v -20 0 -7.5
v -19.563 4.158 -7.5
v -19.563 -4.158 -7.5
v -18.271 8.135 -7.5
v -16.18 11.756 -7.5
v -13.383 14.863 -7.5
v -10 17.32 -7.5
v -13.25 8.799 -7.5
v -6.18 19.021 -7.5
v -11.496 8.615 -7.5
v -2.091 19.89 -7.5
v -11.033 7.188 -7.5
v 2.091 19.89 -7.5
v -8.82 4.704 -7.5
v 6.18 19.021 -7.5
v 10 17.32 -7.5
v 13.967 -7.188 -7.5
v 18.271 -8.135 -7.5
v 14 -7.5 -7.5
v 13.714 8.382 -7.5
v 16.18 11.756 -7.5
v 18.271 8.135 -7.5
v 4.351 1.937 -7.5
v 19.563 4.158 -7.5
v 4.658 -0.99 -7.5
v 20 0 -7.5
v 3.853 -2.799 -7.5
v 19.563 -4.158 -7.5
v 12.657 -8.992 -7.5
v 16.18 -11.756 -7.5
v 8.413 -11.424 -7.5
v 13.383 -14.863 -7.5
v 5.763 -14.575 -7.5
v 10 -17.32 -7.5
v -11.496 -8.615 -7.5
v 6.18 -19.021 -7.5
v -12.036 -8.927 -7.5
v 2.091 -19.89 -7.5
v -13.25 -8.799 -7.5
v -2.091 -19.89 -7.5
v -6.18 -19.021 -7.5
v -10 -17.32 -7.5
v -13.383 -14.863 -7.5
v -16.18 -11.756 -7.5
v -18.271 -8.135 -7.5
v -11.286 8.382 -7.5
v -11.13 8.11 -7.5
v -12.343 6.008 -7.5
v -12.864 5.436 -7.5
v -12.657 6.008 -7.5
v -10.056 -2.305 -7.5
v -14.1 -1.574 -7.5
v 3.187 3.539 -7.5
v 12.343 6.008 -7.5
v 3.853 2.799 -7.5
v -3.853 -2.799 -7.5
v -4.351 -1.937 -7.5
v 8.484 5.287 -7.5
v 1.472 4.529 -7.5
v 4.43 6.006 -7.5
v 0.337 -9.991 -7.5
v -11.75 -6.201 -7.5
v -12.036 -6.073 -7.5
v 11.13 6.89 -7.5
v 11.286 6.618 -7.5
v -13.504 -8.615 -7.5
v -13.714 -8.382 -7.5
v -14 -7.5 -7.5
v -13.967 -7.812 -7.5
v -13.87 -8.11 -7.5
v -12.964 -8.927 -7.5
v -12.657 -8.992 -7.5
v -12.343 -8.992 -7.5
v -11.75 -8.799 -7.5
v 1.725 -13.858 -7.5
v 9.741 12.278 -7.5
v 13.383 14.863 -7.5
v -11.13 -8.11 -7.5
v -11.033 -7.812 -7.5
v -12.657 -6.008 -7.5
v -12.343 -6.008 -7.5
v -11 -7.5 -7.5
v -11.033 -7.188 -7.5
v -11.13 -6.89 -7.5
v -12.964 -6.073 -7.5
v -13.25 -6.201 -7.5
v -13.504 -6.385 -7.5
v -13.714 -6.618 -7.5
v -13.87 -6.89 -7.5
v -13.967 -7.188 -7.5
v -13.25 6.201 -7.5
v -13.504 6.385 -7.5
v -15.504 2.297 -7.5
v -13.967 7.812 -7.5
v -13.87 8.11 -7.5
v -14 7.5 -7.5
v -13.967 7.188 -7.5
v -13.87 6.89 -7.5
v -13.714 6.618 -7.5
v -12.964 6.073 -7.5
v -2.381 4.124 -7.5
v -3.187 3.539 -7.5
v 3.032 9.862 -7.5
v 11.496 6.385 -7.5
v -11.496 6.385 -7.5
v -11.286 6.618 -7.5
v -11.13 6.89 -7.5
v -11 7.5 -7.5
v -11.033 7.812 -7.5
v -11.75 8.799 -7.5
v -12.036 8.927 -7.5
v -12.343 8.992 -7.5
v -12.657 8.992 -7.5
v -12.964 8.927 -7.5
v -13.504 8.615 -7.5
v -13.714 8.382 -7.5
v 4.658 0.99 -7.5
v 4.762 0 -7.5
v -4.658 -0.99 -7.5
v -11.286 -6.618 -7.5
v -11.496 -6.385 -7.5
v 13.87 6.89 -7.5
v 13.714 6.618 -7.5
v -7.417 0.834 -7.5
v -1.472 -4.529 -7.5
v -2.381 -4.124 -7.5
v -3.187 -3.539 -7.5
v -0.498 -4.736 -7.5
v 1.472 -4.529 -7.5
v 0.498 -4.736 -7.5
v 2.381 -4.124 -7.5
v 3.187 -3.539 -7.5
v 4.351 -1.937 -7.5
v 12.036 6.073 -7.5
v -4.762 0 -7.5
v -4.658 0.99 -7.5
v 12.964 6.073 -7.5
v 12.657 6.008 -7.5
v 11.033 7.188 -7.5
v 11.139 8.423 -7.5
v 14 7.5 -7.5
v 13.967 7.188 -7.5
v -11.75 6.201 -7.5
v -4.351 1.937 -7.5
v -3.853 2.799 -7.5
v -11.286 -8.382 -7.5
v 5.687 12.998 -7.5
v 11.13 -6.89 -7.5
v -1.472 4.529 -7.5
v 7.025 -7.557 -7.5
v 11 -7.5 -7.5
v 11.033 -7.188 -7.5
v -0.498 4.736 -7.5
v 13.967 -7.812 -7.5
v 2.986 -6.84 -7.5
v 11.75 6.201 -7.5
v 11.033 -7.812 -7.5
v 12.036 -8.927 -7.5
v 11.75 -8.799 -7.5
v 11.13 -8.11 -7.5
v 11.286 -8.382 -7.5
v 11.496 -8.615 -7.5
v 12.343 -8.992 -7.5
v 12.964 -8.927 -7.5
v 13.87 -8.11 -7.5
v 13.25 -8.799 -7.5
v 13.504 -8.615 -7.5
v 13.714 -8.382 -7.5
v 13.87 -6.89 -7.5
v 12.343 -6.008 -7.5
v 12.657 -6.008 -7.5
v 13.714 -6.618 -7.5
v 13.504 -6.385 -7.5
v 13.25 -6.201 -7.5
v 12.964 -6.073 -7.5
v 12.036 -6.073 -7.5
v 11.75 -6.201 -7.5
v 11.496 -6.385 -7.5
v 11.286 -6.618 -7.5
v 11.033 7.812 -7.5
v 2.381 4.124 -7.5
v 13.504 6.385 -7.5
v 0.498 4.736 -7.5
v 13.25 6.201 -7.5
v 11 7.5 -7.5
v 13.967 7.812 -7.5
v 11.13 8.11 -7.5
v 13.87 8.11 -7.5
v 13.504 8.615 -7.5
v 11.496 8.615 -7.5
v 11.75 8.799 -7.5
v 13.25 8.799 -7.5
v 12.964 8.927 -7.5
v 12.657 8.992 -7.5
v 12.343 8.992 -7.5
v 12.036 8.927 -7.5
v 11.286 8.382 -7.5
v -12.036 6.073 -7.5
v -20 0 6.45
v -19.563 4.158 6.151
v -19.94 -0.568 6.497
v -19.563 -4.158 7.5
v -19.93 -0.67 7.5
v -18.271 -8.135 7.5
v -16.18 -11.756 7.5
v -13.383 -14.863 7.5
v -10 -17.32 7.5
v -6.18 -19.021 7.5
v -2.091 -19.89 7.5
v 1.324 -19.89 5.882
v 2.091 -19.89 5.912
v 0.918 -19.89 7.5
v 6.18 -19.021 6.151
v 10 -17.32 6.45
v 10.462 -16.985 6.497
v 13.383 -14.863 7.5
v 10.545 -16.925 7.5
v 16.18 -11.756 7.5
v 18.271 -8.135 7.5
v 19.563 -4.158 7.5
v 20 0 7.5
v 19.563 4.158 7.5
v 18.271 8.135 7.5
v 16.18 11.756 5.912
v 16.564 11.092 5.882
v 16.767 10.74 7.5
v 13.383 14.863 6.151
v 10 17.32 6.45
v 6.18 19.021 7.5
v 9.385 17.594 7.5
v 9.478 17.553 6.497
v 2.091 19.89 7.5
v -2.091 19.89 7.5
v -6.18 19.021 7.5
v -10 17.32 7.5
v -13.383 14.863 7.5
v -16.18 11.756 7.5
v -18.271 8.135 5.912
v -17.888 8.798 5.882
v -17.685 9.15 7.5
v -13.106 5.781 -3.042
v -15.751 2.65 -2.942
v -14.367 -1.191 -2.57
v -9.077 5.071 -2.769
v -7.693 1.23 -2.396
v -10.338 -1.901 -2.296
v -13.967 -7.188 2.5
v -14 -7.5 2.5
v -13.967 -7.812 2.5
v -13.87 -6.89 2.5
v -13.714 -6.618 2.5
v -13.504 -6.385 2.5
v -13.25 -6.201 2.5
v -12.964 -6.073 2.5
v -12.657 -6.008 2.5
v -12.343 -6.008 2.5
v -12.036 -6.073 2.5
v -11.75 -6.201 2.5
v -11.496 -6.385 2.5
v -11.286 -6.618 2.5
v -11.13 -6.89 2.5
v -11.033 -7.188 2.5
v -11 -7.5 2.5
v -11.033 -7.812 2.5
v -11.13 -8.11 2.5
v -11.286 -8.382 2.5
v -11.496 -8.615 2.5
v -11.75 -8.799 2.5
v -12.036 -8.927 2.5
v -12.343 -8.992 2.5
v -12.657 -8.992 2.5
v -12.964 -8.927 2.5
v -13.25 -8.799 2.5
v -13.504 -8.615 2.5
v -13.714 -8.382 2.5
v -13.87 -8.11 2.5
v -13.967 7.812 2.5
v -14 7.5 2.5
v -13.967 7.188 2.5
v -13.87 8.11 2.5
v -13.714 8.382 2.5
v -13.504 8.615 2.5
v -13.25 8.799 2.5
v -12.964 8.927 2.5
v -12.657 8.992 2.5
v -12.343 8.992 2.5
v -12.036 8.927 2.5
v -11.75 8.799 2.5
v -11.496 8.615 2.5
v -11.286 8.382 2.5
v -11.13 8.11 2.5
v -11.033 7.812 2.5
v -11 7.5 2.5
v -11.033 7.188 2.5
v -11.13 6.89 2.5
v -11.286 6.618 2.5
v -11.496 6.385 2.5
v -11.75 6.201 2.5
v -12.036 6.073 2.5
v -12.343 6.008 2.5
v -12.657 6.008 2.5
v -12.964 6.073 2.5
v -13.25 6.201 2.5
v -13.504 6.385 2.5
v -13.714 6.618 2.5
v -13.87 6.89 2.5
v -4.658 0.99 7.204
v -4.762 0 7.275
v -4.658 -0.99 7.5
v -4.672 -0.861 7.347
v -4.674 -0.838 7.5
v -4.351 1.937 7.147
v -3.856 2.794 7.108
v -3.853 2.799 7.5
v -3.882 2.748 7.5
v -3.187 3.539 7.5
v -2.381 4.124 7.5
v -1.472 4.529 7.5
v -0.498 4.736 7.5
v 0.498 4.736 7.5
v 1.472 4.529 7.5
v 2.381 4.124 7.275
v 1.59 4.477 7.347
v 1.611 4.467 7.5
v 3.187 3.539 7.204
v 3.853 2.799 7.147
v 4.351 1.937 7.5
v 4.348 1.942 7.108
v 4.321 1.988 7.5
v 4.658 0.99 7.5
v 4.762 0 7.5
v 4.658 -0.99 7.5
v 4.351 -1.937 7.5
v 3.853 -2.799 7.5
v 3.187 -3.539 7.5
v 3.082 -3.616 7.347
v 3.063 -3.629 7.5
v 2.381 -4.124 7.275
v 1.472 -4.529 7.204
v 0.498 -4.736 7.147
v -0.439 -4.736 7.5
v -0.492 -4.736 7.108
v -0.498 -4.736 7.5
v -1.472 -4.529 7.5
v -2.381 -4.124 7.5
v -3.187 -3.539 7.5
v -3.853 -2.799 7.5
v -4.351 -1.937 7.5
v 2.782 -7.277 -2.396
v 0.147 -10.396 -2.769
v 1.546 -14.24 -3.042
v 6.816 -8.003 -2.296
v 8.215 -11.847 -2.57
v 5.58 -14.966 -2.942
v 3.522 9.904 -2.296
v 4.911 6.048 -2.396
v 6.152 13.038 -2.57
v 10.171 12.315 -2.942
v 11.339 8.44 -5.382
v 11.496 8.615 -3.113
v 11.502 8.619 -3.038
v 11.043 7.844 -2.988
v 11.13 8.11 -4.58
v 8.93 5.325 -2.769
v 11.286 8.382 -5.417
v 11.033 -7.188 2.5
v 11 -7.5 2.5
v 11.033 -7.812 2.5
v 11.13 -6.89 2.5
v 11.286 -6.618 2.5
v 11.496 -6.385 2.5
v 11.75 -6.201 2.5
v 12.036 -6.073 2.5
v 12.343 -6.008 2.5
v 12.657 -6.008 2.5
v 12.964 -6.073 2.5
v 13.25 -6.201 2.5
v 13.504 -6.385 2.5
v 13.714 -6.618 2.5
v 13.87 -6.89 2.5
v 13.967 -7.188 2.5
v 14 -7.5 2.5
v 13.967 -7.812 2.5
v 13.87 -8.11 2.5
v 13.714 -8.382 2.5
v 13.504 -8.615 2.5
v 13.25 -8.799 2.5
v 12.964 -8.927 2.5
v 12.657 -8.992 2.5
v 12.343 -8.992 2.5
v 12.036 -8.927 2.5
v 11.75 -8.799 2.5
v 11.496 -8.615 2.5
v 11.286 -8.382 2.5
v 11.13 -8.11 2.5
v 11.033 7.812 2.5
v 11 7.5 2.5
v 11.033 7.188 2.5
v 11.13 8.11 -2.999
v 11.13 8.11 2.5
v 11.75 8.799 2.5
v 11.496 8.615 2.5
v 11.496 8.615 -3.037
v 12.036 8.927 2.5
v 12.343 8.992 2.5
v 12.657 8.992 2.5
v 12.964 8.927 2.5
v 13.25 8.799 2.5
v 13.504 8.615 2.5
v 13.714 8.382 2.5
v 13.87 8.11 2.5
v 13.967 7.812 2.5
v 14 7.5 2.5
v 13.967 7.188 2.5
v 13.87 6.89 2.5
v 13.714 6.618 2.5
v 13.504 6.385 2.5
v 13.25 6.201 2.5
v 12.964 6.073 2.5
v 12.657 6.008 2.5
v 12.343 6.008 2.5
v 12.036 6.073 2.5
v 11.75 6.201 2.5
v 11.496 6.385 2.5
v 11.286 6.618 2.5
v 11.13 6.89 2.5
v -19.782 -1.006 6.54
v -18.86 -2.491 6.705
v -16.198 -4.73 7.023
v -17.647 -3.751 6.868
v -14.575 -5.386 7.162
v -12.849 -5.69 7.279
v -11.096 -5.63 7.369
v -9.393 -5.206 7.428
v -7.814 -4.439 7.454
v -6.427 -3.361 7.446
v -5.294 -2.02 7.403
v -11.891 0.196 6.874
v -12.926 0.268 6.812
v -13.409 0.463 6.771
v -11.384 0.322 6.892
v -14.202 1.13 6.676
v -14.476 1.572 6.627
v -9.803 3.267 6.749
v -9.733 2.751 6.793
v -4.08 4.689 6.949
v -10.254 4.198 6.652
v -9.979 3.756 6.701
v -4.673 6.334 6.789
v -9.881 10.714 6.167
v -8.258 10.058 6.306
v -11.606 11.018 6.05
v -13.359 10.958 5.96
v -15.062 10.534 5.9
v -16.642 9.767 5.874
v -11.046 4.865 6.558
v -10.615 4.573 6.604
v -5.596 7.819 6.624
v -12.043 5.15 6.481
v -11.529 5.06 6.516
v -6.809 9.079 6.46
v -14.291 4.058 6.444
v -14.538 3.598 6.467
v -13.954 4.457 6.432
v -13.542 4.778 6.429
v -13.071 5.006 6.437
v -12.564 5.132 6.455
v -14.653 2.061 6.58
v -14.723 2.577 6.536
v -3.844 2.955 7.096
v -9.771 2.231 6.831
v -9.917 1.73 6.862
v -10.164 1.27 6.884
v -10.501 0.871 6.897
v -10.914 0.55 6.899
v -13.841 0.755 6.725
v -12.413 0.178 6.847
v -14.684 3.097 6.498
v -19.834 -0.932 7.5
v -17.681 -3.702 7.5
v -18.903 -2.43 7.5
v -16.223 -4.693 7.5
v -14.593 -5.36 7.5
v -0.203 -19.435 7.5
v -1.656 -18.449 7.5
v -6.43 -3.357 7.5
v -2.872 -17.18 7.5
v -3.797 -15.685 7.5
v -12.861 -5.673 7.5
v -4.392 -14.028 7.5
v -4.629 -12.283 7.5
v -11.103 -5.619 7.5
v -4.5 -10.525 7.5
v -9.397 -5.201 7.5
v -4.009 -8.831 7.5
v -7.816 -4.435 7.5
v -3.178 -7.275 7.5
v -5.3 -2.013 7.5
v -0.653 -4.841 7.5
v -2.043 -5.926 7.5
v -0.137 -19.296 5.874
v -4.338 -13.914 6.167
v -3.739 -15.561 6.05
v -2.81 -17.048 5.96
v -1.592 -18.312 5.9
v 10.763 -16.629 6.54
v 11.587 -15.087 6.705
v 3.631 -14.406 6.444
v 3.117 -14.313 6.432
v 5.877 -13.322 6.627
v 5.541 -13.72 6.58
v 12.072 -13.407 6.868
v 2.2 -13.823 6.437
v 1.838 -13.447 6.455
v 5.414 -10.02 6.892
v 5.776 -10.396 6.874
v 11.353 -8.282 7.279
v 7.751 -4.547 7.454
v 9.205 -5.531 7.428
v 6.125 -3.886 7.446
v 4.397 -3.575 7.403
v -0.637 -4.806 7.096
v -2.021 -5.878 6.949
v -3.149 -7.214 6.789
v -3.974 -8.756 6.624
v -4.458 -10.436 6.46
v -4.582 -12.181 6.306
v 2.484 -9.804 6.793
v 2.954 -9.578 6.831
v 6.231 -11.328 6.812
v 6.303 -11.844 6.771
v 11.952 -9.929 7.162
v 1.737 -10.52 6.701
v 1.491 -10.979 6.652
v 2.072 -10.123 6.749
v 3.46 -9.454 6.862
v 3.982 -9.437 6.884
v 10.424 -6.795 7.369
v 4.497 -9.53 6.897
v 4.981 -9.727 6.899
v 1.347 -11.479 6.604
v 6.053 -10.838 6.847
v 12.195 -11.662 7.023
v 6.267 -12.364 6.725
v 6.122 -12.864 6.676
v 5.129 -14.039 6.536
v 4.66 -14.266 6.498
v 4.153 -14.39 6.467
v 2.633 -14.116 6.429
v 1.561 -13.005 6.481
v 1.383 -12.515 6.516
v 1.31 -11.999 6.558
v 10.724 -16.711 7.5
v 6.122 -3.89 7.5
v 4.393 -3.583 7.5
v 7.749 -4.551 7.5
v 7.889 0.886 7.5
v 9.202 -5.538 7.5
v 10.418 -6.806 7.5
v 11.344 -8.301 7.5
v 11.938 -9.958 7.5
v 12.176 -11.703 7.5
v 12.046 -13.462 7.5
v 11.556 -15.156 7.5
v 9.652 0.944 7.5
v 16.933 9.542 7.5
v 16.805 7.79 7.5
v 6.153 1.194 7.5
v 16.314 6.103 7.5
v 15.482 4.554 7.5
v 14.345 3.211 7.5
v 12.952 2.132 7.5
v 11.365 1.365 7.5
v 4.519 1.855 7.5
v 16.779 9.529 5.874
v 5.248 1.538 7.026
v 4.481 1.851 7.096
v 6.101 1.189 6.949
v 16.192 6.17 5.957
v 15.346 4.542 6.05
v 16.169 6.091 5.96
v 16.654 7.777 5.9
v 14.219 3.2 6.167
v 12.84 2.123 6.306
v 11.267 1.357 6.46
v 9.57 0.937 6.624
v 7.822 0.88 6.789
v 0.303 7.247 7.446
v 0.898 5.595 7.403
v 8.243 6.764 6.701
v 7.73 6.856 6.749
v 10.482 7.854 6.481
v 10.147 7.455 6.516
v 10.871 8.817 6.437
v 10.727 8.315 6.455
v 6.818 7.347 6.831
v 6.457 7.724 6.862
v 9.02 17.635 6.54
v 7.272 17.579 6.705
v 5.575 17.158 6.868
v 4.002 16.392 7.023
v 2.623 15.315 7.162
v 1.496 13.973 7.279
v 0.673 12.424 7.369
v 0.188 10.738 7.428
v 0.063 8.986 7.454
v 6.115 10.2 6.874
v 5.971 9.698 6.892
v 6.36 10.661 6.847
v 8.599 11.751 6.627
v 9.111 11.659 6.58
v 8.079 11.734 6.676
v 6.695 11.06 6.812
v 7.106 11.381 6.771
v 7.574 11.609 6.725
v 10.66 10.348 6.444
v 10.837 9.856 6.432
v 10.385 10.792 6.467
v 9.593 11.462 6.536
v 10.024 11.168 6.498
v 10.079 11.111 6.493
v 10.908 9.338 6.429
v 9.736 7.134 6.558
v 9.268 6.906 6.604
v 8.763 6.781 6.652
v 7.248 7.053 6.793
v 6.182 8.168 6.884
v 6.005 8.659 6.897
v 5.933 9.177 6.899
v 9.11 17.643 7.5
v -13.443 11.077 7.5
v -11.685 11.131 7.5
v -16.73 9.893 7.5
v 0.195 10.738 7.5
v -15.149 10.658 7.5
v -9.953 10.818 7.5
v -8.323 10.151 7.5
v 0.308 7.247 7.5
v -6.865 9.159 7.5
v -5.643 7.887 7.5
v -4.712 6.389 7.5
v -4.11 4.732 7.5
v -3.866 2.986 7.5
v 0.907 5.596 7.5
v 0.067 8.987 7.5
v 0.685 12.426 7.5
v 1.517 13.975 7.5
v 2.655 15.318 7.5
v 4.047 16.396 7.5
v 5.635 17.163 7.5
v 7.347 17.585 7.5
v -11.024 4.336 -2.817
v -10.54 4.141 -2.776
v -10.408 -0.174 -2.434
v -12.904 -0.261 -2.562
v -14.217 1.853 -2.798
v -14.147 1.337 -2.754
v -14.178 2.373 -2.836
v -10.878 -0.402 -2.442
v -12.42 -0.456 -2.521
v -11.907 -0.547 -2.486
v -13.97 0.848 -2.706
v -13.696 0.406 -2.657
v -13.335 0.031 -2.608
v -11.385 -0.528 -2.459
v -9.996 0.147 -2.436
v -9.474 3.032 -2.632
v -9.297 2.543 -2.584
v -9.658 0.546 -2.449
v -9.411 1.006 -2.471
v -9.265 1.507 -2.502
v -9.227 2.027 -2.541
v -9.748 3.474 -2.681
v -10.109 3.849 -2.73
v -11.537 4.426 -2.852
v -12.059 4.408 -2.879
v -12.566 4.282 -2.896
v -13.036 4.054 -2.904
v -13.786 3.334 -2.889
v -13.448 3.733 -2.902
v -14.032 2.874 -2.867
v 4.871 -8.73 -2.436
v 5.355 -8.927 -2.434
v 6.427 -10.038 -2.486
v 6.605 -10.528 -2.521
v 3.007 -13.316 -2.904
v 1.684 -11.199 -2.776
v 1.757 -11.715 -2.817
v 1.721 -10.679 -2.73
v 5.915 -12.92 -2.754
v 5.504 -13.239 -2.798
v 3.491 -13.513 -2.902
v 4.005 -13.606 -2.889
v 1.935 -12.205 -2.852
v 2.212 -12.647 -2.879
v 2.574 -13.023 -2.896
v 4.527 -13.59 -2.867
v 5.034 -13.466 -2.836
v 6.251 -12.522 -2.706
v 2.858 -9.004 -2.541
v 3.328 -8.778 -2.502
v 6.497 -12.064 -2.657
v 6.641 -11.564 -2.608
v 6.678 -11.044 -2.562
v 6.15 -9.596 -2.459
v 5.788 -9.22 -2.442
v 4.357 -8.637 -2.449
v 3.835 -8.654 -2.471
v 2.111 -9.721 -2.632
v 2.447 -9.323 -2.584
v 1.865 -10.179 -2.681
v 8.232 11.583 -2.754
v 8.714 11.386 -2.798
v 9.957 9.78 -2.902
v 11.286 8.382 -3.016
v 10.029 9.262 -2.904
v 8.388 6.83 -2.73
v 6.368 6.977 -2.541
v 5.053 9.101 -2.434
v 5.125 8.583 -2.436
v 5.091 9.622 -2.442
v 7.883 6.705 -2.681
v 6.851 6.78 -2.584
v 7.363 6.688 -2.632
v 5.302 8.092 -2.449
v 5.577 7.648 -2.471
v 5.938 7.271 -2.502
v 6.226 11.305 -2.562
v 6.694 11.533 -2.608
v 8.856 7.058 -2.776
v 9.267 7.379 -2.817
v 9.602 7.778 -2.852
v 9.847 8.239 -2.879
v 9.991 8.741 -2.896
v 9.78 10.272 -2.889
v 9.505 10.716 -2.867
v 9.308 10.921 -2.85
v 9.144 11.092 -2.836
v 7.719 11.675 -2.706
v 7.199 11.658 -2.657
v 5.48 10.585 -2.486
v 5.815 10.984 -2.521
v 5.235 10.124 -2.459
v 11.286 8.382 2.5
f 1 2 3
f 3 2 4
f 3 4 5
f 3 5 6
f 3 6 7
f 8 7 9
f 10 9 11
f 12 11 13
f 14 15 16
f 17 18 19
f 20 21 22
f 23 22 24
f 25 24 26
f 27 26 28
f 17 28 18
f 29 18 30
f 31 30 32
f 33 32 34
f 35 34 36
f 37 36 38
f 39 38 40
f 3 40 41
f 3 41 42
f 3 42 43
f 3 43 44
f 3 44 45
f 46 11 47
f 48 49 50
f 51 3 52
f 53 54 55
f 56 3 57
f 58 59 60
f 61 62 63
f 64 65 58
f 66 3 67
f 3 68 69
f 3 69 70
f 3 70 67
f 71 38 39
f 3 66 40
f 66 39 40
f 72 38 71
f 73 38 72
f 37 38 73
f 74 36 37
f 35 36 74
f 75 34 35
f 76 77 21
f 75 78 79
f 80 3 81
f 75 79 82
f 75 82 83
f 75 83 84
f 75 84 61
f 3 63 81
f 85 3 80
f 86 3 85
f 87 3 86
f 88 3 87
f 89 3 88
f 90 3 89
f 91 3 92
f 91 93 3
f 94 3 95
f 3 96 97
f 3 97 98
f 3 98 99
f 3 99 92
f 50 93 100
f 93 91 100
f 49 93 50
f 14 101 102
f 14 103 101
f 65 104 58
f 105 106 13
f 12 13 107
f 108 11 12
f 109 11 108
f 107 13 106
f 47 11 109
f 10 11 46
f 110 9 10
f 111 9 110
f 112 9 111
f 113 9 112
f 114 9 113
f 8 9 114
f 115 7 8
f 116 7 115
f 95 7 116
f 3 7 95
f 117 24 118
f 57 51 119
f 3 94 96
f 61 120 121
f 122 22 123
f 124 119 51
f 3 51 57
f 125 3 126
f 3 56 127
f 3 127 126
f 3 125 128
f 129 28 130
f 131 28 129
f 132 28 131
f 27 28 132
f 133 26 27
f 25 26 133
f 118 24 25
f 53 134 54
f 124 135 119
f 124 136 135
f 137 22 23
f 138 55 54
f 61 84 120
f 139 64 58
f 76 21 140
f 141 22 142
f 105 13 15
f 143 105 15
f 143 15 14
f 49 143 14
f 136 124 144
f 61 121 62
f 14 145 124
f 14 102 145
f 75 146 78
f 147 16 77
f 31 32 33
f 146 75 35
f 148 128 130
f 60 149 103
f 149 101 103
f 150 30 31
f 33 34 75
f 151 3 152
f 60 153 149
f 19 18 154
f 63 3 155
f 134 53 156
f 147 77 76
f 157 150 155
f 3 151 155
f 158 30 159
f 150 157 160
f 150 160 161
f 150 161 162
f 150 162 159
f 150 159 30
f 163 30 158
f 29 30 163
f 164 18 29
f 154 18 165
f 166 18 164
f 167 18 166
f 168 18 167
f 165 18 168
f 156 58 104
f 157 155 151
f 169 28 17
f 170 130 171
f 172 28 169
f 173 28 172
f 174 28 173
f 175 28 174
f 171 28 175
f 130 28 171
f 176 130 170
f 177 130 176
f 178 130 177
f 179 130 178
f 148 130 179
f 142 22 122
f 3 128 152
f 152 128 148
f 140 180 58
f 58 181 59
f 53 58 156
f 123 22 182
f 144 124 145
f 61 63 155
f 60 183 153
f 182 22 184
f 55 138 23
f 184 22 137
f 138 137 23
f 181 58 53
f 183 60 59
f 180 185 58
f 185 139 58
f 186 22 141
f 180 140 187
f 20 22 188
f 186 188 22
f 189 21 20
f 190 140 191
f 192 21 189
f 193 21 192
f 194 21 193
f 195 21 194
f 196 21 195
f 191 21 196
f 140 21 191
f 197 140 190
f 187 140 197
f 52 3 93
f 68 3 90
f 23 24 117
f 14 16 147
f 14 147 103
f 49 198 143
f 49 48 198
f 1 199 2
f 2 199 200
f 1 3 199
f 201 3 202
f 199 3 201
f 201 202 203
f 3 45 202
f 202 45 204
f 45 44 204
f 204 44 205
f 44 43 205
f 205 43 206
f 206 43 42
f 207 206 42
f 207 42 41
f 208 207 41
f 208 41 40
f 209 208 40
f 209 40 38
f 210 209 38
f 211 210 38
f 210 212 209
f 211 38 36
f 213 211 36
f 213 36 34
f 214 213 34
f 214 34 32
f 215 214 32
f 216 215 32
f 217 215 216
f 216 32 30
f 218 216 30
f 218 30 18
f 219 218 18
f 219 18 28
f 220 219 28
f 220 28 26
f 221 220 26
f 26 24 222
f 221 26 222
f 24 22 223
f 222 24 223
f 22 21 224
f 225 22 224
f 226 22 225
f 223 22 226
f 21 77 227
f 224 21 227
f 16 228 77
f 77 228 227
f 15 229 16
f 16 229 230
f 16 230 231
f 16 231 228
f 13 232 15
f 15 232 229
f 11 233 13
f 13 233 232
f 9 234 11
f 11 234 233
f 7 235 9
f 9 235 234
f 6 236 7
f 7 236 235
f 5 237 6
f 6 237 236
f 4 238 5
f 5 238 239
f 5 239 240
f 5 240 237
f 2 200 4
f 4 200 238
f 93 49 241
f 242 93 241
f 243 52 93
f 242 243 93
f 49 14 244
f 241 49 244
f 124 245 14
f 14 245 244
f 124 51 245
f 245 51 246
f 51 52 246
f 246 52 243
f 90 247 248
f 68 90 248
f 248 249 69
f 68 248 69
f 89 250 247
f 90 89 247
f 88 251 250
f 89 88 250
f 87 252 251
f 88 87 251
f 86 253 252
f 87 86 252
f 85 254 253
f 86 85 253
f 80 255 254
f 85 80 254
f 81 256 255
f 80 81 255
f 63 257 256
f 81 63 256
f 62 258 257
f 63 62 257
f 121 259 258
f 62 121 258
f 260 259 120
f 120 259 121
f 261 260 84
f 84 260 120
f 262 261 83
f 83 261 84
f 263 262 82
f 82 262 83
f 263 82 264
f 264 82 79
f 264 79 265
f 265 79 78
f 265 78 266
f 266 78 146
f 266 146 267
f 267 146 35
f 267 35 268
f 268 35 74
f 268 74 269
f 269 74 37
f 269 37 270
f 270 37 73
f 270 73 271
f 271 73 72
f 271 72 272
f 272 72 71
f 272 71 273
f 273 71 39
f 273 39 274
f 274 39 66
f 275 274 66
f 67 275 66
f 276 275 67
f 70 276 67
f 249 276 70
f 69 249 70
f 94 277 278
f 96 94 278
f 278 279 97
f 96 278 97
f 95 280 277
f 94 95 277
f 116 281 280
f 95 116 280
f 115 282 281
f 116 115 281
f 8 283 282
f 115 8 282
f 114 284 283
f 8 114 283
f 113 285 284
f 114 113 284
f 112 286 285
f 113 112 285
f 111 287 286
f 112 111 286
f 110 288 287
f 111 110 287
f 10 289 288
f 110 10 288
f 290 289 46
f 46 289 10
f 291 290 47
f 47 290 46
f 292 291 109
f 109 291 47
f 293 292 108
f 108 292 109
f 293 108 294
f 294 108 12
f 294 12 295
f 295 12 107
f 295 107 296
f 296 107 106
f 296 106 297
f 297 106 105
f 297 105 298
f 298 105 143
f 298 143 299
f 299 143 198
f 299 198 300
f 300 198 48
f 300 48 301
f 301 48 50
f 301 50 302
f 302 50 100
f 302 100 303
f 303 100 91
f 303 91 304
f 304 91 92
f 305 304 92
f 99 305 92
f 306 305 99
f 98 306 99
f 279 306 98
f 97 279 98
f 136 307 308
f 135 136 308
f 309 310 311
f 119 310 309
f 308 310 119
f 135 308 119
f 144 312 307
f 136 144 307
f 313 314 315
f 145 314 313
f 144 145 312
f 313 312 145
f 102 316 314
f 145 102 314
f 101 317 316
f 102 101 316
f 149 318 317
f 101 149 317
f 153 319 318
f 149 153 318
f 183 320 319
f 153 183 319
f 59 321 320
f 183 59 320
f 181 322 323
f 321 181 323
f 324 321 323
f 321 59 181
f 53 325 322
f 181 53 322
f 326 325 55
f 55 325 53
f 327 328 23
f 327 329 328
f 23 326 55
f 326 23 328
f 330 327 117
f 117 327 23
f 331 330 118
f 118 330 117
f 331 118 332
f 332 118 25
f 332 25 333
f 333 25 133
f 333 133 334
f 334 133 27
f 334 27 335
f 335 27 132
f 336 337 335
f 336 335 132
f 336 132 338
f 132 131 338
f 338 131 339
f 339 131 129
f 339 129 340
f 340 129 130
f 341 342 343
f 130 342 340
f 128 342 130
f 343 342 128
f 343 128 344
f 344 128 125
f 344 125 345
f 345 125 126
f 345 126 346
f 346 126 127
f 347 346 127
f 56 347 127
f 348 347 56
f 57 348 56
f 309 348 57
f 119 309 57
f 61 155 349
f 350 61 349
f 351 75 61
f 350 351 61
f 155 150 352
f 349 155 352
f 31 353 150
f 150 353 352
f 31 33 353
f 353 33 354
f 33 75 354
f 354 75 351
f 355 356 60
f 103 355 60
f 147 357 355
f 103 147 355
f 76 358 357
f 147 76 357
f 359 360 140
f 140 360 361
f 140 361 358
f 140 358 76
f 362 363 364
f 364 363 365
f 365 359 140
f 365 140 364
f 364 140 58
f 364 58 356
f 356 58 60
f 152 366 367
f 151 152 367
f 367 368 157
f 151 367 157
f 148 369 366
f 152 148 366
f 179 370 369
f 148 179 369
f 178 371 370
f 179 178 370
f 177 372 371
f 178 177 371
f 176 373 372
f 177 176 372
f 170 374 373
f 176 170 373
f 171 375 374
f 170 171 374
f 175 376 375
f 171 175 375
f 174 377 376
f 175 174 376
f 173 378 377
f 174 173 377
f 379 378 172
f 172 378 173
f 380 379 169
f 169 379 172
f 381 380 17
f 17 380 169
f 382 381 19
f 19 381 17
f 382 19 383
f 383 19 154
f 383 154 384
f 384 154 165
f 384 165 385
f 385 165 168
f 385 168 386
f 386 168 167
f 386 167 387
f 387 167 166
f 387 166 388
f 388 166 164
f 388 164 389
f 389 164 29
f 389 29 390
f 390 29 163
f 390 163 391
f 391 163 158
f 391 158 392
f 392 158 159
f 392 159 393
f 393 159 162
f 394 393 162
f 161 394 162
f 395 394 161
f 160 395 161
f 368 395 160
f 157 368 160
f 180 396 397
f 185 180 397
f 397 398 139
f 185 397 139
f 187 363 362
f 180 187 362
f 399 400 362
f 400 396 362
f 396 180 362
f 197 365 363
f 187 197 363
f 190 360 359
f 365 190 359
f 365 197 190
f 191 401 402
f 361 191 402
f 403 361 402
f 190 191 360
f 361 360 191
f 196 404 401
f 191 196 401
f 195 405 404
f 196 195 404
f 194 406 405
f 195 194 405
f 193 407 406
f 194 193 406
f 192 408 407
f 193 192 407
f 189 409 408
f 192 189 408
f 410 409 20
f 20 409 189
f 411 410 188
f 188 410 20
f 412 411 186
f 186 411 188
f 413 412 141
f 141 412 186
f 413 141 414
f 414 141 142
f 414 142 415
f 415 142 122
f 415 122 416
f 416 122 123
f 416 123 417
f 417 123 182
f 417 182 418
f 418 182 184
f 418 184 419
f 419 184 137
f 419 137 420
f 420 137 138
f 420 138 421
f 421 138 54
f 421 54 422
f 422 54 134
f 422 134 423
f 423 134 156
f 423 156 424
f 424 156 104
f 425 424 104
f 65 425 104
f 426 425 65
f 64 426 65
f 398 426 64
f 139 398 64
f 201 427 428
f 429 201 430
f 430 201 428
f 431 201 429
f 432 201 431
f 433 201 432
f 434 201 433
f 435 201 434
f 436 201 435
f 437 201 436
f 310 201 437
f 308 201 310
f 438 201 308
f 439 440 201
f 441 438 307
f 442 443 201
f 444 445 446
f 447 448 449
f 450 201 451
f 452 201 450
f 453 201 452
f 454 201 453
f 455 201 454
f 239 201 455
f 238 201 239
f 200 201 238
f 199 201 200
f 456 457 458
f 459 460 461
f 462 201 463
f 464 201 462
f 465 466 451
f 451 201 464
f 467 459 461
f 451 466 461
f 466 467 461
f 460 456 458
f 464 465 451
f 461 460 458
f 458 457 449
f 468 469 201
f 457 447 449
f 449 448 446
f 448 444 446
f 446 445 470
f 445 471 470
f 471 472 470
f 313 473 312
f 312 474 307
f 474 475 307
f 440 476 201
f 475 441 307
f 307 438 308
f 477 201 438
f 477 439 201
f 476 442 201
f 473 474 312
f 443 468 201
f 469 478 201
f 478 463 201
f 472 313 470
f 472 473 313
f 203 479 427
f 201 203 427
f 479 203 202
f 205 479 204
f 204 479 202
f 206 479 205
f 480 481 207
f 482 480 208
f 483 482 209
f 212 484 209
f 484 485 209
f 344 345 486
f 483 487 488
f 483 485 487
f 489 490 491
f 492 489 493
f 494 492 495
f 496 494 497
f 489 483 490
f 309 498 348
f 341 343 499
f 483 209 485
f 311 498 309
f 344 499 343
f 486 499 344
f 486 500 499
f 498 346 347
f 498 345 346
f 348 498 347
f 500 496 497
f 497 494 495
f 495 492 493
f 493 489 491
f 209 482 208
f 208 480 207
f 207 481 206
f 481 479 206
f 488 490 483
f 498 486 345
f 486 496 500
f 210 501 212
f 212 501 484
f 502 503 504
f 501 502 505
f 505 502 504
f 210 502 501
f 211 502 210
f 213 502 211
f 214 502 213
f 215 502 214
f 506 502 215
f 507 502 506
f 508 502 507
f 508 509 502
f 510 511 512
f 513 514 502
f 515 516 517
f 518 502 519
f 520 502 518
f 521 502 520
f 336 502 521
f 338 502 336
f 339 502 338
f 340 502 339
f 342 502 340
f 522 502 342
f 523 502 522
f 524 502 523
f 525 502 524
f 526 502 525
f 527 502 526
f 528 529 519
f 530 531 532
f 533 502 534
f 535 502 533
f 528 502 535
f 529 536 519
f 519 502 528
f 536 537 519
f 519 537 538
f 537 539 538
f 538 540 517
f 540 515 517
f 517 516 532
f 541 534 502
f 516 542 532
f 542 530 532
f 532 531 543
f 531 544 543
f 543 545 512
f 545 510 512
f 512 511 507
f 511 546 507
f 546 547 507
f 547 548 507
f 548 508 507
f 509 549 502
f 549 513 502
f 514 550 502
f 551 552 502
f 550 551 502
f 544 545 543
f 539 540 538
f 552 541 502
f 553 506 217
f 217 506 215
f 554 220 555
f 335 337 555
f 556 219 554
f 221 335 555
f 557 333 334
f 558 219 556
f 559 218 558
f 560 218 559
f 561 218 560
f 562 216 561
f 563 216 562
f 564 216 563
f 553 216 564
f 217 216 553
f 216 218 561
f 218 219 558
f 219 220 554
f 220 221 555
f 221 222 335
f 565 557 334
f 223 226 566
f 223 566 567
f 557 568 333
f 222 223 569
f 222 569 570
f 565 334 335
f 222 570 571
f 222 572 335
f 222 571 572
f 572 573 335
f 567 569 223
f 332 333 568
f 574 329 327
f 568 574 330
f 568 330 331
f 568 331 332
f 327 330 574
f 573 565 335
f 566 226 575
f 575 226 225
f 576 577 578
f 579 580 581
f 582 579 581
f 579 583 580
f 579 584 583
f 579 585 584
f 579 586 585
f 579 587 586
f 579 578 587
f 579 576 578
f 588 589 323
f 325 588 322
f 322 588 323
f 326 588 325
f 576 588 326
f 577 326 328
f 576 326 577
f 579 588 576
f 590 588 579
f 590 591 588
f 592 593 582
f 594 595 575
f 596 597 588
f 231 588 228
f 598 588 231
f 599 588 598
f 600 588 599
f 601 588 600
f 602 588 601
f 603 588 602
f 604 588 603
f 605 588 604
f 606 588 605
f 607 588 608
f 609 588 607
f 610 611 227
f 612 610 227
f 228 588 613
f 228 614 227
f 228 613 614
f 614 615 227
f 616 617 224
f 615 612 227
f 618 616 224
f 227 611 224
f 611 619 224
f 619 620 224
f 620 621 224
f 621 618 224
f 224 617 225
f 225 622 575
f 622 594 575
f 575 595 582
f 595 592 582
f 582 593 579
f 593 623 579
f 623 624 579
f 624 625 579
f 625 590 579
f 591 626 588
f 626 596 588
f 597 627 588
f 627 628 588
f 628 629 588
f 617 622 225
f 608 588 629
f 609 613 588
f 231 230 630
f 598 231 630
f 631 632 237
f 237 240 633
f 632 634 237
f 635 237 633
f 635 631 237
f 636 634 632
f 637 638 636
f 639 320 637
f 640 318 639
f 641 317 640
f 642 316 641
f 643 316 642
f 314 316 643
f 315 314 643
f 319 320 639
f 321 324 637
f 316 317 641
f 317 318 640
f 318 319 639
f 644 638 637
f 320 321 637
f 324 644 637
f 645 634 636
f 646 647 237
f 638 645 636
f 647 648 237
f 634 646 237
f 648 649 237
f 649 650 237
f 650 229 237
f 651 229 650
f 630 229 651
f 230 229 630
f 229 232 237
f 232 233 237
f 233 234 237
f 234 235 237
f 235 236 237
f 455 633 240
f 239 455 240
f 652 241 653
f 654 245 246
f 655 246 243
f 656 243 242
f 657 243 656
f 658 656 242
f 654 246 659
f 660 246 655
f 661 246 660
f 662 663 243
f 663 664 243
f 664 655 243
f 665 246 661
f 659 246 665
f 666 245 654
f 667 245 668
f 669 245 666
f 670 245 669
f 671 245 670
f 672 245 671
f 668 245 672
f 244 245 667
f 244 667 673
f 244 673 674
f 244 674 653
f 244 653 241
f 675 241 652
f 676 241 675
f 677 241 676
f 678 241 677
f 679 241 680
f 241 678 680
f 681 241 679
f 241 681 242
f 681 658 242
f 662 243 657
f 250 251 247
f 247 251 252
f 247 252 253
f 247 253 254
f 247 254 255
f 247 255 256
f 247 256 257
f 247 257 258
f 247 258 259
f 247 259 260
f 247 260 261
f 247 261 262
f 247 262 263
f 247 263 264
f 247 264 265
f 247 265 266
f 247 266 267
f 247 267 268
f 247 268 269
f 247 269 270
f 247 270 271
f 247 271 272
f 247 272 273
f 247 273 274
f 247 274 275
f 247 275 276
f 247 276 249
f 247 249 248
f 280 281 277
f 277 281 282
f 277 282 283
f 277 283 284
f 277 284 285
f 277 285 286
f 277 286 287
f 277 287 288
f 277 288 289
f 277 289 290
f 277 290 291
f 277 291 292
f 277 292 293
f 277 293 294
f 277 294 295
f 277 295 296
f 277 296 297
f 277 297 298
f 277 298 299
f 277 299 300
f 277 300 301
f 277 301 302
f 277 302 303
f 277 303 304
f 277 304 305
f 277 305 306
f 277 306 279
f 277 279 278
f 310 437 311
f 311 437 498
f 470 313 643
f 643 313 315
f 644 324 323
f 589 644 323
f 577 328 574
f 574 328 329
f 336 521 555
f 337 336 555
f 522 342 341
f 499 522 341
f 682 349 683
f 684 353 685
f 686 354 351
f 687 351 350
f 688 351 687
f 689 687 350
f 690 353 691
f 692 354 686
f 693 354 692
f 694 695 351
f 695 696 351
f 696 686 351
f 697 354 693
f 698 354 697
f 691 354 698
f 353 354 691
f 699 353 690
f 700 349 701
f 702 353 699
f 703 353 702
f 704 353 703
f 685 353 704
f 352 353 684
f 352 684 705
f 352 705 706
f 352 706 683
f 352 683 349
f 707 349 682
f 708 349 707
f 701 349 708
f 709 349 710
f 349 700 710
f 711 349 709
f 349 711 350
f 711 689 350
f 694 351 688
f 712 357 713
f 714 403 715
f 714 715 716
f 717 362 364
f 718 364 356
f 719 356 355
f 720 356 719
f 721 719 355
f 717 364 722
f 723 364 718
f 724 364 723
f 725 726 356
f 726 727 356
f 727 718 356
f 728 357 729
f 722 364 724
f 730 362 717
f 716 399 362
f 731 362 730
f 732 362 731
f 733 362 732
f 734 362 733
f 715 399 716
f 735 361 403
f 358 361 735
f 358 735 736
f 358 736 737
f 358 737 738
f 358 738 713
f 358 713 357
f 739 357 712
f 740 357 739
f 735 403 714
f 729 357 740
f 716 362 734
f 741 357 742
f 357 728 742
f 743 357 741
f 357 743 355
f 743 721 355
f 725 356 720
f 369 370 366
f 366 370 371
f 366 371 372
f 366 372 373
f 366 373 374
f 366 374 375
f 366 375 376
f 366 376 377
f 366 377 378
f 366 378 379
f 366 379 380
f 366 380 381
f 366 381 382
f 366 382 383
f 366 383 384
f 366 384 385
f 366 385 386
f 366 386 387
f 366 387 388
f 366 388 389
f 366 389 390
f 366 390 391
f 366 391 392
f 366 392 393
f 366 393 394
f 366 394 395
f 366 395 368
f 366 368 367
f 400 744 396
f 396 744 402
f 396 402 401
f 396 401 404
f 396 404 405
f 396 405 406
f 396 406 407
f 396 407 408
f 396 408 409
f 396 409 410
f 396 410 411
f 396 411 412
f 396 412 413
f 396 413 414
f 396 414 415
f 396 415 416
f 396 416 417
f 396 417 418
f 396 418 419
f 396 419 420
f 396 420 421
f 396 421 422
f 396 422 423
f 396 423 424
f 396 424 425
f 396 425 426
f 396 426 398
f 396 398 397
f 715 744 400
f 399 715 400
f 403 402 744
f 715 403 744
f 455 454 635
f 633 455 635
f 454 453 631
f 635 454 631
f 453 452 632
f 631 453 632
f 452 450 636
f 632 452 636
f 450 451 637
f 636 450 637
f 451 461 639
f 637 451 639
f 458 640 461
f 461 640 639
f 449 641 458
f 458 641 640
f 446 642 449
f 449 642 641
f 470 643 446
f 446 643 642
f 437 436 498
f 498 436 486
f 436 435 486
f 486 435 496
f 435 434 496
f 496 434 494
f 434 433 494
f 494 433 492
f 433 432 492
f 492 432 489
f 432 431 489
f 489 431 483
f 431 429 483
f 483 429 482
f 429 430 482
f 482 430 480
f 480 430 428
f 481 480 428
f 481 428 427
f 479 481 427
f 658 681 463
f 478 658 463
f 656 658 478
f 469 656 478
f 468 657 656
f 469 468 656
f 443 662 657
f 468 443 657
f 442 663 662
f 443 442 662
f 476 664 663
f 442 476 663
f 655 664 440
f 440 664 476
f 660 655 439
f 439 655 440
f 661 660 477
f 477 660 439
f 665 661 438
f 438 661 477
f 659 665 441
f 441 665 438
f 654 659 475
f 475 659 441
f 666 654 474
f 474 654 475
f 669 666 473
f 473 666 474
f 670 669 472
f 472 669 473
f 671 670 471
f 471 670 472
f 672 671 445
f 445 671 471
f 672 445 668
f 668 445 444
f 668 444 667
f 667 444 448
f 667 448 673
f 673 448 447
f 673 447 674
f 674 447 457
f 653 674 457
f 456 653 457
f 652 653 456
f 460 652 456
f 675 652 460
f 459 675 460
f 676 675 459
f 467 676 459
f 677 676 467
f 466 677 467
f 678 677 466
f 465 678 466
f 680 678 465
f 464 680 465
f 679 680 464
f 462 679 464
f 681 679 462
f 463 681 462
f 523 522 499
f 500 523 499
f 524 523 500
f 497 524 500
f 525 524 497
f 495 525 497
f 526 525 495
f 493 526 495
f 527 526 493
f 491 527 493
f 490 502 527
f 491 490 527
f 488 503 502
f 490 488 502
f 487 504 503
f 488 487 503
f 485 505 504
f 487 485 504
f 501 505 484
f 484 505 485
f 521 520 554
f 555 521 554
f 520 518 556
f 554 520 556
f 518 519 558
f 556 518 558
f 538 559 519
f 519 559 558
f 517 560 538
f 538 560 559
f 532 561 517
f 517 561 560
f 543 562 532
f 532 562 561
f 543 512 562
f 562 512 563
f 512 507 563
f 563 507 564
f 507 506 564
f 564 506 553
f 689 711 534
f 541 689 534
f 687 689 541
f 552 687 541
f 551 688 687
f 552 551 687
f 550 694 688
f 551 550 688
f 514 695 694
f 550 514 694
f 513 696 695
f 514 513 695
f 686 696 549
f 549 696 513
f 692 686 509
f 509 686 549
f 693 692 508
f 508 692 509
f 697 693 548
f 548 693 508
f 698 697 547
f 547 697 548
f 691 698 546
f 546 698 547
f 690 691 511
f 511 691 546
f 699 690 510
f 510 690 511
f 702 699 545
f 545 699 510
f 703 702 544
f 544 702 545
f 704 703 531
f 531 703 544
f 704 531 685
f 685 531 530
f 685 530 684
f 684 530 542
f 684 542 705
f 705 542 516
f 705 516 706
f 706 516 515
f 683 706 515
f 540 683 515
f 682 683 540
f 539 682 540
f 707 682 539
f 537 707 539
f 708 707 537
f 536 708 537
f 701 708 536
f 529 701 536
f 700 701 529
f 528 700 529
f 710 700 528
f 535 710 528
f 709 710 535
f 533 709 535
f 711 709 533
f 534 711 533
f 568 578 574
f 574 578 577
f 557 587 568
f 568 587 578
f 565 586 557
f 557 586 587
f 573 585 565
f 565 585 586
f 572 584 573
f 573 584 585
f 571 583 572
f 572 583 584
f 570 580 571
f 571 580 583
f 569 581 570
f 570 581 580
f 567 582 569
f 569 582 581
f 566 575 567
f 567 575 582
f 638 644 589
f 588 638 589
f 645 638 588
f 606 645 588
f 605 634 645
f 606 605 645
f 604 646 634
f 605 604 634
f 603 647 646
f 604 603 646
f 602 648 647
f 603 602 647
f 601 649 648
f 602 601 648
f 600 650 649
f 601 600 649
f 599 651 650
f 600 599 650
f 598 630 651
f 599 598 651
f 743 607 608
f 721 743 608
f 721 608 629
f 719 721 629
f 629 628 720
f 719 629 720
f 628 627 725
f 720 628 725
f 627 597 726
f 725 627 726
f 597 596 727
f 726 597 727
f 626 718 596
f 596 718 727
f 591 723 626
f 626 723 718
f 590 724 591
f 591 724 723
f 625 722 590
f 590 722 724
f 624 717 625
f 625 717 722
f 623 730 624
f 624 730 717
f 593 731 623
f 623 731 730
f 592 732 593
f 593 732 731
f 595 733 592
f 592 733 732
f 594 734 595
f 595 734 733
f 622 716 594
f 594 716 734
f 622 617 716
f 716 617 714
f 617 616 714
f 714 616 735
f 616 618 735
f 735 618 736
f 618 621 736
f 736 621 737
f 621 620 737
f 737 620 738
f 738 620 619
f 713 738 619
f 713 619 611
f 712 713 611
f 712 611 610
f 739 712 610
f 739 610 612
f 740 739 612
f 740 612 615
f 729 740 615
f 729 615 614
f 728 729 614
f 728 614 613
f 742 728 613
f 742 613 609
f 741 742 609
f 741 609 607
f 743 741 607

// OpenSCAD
/* 

		This file had been created by Tim Chandler a.k.a. 2n2r5 and is 
		being shared under the creative commons - attribution license.
		Any and all icons, references to 2n2r5.com, 2n2r5.net, Tim 
		Chandler ,2n2r5 or Trademarks must remain in the the end product. 
		This script is free to use for any and all purposes, both 
		commercial and non-commercial provided that the above conditions 
		are met. 


		Please refer to http://creativecommons.org/licenses/by/3.0/ 
		for more information on this license.
*/

/*

Script by: Tim Chandler (2n2r5)

Filename: threadless_ball_screw.scad
Date of Creation: 7/26/13
True Revision Number: V1
Date of Revision: 7/26/13

Description:
This will create a customizable version of thing:112718, the "Threadless Ball Screw", for mounting on the solidoodle bed.


Todo:

 - make prettier bases that fit the platform better
 - fix bdfc to be more accurate and actually touch the smooth rod with out the aid of "snug"
 - clean up code
 - add hole pattern for wooden platform
 - add library of bearings with 5,4 and 3 mm centers
 - included a clipping check function for overlapping holes
 - clean up code before letting general public play with it

*/



/* [Mount and Platform Shape] */
BaseShape="round"; //options are "round" or "box" more and better options coming
//Mounting screw size
mss = 3 ;

//Mounting Hole Depth
mhd = 10 ;

/* For Square Base */
//Size of Base (OEM M3 screws will stick out around 14-15mm)
bh = 15;

//Y width of Base
byw = 35;

//X width of Base
bxw= 35;

/* For Round Base */
//Base width (radius)
bwr=20;

//Mounting holes from center

mhfc= [
		[	-12.5,7.5,-(bh-mhd)/2	],
	  	[	-12.5,-7.5,-(bh-mhd)/2	],
	  	[	12.5,7.5,-(bh-mhd)/2	],	
	  	[	12.5,-7.5,-(bh-mhd)/2	]
	  	];



/* [Bearing Spec] */

//Bearing Outer Diameter
bod = 16 ;

//Bearing Inner Diameter and Screw hole size
bid = 5 ;

//Bearing Width ;
bw = 5 ;

//Total Number of Bearings
nob = 3;

//Use this to rotate the bearings if they are not in a friendly place
rotAdj = 50;



/* [Steps Per MM] */

//Smooth Rod Diameter
srd = 9.525 ; //[3/8,9.525:5/16,7.9375:1/4,6.35:3:5:6:8:10:12]

//Desired steps/mm
pitch = 2 ;


/* ------------------- Rookie Line (Do not cross unless you know what you are doing) --------------------- */


/* --- Caluculations --- */


//simplify base size
base = [bxw,byw,bh];

//simplify bearing
bsize = [bod/2,bid/2,bw];

//bearing mounting angle to get desired pitch
bma = atan(pitch / (srd * 3.141592 ));

//X distance from center of bearing
bdfc = cos(bma)*(bod/2);

$fn=30;

snug = (bod/2-bdfc)*2;

echo ("The bearing angle will be set to ", bma ,"degrees.");
echo ("Bearing is " , bdfc , "Horizontally from edge.");
echo (snug);




/* ------------- Start Shapes Below ---------------*/

/* 

In the interest of making this script easily adaptable,
 all main shapes will be separate modules and will be 
 called like you would use an include statement into other modules.

*/

// This builds the basic shape of the bearing
module Bearing (bigd,smalld,bbwidth) {
	difference(){
	cylinder(r=bigd,h=bbwidth);
	%cylinder(r=smalld,h=bbwidth);
	}
}

//base with mounting holes
module Base(){
	difference(){
		
		union(){
				if(BaseShape=="round"){
					cylinder(r=bwr,h=bh,center=true);
				} else if (BaseShape==box){

					cube(base,center=true);
				} else {

				}
			}
		
		union(){
			
			for(i=mhfc)	{


				translate(i) {
					cylinder(r=mss/2, h=mhd, center=true);
					/*

					This is code to add inset nutsto the baseplate connections. This will cause things to be unprintable

					union(){
						cylinder(r=5.5/2, h=2.5,$fn=6, center=true);                                                                                                                                           
						

						}
					
					*/
					}
					
				}
			//Hole for smooth rod
			#cylinder(r=(srd/2)*1.0,h=100,center=true);


			}
		}
	}	


/* Bearing mounts are all made positive and will be subtracted from base */
module bearingMounts(){
// --------------- ***** For anything that will be used in a rotational translate loop (I.E. bearing cut out, mounting screw, mounting nut)  ****** ----------- //
	for (j= [0:nob]) {

		rotate([bma,bma,j*360/nob+rotAdj]) translate([(srd/2)+bdfc-snug*20,0,bh/2]){ Bearing(bod/2*(1.05),bid/2,bw*(1.05));
		translate([0,0,-bh/2])cylinder(r=bid/2,h=bh,center=true);
		translate([0,0,-bh*(7/8)])cylinder(r=4.1,h=bh/2,$fn=6,center=true);
		}

	}
// -------------- **** End Rotational Translate Loop **** ------------- //
}



// Module output and formatting here
difference(){
Base();
bearingMounts();
}
